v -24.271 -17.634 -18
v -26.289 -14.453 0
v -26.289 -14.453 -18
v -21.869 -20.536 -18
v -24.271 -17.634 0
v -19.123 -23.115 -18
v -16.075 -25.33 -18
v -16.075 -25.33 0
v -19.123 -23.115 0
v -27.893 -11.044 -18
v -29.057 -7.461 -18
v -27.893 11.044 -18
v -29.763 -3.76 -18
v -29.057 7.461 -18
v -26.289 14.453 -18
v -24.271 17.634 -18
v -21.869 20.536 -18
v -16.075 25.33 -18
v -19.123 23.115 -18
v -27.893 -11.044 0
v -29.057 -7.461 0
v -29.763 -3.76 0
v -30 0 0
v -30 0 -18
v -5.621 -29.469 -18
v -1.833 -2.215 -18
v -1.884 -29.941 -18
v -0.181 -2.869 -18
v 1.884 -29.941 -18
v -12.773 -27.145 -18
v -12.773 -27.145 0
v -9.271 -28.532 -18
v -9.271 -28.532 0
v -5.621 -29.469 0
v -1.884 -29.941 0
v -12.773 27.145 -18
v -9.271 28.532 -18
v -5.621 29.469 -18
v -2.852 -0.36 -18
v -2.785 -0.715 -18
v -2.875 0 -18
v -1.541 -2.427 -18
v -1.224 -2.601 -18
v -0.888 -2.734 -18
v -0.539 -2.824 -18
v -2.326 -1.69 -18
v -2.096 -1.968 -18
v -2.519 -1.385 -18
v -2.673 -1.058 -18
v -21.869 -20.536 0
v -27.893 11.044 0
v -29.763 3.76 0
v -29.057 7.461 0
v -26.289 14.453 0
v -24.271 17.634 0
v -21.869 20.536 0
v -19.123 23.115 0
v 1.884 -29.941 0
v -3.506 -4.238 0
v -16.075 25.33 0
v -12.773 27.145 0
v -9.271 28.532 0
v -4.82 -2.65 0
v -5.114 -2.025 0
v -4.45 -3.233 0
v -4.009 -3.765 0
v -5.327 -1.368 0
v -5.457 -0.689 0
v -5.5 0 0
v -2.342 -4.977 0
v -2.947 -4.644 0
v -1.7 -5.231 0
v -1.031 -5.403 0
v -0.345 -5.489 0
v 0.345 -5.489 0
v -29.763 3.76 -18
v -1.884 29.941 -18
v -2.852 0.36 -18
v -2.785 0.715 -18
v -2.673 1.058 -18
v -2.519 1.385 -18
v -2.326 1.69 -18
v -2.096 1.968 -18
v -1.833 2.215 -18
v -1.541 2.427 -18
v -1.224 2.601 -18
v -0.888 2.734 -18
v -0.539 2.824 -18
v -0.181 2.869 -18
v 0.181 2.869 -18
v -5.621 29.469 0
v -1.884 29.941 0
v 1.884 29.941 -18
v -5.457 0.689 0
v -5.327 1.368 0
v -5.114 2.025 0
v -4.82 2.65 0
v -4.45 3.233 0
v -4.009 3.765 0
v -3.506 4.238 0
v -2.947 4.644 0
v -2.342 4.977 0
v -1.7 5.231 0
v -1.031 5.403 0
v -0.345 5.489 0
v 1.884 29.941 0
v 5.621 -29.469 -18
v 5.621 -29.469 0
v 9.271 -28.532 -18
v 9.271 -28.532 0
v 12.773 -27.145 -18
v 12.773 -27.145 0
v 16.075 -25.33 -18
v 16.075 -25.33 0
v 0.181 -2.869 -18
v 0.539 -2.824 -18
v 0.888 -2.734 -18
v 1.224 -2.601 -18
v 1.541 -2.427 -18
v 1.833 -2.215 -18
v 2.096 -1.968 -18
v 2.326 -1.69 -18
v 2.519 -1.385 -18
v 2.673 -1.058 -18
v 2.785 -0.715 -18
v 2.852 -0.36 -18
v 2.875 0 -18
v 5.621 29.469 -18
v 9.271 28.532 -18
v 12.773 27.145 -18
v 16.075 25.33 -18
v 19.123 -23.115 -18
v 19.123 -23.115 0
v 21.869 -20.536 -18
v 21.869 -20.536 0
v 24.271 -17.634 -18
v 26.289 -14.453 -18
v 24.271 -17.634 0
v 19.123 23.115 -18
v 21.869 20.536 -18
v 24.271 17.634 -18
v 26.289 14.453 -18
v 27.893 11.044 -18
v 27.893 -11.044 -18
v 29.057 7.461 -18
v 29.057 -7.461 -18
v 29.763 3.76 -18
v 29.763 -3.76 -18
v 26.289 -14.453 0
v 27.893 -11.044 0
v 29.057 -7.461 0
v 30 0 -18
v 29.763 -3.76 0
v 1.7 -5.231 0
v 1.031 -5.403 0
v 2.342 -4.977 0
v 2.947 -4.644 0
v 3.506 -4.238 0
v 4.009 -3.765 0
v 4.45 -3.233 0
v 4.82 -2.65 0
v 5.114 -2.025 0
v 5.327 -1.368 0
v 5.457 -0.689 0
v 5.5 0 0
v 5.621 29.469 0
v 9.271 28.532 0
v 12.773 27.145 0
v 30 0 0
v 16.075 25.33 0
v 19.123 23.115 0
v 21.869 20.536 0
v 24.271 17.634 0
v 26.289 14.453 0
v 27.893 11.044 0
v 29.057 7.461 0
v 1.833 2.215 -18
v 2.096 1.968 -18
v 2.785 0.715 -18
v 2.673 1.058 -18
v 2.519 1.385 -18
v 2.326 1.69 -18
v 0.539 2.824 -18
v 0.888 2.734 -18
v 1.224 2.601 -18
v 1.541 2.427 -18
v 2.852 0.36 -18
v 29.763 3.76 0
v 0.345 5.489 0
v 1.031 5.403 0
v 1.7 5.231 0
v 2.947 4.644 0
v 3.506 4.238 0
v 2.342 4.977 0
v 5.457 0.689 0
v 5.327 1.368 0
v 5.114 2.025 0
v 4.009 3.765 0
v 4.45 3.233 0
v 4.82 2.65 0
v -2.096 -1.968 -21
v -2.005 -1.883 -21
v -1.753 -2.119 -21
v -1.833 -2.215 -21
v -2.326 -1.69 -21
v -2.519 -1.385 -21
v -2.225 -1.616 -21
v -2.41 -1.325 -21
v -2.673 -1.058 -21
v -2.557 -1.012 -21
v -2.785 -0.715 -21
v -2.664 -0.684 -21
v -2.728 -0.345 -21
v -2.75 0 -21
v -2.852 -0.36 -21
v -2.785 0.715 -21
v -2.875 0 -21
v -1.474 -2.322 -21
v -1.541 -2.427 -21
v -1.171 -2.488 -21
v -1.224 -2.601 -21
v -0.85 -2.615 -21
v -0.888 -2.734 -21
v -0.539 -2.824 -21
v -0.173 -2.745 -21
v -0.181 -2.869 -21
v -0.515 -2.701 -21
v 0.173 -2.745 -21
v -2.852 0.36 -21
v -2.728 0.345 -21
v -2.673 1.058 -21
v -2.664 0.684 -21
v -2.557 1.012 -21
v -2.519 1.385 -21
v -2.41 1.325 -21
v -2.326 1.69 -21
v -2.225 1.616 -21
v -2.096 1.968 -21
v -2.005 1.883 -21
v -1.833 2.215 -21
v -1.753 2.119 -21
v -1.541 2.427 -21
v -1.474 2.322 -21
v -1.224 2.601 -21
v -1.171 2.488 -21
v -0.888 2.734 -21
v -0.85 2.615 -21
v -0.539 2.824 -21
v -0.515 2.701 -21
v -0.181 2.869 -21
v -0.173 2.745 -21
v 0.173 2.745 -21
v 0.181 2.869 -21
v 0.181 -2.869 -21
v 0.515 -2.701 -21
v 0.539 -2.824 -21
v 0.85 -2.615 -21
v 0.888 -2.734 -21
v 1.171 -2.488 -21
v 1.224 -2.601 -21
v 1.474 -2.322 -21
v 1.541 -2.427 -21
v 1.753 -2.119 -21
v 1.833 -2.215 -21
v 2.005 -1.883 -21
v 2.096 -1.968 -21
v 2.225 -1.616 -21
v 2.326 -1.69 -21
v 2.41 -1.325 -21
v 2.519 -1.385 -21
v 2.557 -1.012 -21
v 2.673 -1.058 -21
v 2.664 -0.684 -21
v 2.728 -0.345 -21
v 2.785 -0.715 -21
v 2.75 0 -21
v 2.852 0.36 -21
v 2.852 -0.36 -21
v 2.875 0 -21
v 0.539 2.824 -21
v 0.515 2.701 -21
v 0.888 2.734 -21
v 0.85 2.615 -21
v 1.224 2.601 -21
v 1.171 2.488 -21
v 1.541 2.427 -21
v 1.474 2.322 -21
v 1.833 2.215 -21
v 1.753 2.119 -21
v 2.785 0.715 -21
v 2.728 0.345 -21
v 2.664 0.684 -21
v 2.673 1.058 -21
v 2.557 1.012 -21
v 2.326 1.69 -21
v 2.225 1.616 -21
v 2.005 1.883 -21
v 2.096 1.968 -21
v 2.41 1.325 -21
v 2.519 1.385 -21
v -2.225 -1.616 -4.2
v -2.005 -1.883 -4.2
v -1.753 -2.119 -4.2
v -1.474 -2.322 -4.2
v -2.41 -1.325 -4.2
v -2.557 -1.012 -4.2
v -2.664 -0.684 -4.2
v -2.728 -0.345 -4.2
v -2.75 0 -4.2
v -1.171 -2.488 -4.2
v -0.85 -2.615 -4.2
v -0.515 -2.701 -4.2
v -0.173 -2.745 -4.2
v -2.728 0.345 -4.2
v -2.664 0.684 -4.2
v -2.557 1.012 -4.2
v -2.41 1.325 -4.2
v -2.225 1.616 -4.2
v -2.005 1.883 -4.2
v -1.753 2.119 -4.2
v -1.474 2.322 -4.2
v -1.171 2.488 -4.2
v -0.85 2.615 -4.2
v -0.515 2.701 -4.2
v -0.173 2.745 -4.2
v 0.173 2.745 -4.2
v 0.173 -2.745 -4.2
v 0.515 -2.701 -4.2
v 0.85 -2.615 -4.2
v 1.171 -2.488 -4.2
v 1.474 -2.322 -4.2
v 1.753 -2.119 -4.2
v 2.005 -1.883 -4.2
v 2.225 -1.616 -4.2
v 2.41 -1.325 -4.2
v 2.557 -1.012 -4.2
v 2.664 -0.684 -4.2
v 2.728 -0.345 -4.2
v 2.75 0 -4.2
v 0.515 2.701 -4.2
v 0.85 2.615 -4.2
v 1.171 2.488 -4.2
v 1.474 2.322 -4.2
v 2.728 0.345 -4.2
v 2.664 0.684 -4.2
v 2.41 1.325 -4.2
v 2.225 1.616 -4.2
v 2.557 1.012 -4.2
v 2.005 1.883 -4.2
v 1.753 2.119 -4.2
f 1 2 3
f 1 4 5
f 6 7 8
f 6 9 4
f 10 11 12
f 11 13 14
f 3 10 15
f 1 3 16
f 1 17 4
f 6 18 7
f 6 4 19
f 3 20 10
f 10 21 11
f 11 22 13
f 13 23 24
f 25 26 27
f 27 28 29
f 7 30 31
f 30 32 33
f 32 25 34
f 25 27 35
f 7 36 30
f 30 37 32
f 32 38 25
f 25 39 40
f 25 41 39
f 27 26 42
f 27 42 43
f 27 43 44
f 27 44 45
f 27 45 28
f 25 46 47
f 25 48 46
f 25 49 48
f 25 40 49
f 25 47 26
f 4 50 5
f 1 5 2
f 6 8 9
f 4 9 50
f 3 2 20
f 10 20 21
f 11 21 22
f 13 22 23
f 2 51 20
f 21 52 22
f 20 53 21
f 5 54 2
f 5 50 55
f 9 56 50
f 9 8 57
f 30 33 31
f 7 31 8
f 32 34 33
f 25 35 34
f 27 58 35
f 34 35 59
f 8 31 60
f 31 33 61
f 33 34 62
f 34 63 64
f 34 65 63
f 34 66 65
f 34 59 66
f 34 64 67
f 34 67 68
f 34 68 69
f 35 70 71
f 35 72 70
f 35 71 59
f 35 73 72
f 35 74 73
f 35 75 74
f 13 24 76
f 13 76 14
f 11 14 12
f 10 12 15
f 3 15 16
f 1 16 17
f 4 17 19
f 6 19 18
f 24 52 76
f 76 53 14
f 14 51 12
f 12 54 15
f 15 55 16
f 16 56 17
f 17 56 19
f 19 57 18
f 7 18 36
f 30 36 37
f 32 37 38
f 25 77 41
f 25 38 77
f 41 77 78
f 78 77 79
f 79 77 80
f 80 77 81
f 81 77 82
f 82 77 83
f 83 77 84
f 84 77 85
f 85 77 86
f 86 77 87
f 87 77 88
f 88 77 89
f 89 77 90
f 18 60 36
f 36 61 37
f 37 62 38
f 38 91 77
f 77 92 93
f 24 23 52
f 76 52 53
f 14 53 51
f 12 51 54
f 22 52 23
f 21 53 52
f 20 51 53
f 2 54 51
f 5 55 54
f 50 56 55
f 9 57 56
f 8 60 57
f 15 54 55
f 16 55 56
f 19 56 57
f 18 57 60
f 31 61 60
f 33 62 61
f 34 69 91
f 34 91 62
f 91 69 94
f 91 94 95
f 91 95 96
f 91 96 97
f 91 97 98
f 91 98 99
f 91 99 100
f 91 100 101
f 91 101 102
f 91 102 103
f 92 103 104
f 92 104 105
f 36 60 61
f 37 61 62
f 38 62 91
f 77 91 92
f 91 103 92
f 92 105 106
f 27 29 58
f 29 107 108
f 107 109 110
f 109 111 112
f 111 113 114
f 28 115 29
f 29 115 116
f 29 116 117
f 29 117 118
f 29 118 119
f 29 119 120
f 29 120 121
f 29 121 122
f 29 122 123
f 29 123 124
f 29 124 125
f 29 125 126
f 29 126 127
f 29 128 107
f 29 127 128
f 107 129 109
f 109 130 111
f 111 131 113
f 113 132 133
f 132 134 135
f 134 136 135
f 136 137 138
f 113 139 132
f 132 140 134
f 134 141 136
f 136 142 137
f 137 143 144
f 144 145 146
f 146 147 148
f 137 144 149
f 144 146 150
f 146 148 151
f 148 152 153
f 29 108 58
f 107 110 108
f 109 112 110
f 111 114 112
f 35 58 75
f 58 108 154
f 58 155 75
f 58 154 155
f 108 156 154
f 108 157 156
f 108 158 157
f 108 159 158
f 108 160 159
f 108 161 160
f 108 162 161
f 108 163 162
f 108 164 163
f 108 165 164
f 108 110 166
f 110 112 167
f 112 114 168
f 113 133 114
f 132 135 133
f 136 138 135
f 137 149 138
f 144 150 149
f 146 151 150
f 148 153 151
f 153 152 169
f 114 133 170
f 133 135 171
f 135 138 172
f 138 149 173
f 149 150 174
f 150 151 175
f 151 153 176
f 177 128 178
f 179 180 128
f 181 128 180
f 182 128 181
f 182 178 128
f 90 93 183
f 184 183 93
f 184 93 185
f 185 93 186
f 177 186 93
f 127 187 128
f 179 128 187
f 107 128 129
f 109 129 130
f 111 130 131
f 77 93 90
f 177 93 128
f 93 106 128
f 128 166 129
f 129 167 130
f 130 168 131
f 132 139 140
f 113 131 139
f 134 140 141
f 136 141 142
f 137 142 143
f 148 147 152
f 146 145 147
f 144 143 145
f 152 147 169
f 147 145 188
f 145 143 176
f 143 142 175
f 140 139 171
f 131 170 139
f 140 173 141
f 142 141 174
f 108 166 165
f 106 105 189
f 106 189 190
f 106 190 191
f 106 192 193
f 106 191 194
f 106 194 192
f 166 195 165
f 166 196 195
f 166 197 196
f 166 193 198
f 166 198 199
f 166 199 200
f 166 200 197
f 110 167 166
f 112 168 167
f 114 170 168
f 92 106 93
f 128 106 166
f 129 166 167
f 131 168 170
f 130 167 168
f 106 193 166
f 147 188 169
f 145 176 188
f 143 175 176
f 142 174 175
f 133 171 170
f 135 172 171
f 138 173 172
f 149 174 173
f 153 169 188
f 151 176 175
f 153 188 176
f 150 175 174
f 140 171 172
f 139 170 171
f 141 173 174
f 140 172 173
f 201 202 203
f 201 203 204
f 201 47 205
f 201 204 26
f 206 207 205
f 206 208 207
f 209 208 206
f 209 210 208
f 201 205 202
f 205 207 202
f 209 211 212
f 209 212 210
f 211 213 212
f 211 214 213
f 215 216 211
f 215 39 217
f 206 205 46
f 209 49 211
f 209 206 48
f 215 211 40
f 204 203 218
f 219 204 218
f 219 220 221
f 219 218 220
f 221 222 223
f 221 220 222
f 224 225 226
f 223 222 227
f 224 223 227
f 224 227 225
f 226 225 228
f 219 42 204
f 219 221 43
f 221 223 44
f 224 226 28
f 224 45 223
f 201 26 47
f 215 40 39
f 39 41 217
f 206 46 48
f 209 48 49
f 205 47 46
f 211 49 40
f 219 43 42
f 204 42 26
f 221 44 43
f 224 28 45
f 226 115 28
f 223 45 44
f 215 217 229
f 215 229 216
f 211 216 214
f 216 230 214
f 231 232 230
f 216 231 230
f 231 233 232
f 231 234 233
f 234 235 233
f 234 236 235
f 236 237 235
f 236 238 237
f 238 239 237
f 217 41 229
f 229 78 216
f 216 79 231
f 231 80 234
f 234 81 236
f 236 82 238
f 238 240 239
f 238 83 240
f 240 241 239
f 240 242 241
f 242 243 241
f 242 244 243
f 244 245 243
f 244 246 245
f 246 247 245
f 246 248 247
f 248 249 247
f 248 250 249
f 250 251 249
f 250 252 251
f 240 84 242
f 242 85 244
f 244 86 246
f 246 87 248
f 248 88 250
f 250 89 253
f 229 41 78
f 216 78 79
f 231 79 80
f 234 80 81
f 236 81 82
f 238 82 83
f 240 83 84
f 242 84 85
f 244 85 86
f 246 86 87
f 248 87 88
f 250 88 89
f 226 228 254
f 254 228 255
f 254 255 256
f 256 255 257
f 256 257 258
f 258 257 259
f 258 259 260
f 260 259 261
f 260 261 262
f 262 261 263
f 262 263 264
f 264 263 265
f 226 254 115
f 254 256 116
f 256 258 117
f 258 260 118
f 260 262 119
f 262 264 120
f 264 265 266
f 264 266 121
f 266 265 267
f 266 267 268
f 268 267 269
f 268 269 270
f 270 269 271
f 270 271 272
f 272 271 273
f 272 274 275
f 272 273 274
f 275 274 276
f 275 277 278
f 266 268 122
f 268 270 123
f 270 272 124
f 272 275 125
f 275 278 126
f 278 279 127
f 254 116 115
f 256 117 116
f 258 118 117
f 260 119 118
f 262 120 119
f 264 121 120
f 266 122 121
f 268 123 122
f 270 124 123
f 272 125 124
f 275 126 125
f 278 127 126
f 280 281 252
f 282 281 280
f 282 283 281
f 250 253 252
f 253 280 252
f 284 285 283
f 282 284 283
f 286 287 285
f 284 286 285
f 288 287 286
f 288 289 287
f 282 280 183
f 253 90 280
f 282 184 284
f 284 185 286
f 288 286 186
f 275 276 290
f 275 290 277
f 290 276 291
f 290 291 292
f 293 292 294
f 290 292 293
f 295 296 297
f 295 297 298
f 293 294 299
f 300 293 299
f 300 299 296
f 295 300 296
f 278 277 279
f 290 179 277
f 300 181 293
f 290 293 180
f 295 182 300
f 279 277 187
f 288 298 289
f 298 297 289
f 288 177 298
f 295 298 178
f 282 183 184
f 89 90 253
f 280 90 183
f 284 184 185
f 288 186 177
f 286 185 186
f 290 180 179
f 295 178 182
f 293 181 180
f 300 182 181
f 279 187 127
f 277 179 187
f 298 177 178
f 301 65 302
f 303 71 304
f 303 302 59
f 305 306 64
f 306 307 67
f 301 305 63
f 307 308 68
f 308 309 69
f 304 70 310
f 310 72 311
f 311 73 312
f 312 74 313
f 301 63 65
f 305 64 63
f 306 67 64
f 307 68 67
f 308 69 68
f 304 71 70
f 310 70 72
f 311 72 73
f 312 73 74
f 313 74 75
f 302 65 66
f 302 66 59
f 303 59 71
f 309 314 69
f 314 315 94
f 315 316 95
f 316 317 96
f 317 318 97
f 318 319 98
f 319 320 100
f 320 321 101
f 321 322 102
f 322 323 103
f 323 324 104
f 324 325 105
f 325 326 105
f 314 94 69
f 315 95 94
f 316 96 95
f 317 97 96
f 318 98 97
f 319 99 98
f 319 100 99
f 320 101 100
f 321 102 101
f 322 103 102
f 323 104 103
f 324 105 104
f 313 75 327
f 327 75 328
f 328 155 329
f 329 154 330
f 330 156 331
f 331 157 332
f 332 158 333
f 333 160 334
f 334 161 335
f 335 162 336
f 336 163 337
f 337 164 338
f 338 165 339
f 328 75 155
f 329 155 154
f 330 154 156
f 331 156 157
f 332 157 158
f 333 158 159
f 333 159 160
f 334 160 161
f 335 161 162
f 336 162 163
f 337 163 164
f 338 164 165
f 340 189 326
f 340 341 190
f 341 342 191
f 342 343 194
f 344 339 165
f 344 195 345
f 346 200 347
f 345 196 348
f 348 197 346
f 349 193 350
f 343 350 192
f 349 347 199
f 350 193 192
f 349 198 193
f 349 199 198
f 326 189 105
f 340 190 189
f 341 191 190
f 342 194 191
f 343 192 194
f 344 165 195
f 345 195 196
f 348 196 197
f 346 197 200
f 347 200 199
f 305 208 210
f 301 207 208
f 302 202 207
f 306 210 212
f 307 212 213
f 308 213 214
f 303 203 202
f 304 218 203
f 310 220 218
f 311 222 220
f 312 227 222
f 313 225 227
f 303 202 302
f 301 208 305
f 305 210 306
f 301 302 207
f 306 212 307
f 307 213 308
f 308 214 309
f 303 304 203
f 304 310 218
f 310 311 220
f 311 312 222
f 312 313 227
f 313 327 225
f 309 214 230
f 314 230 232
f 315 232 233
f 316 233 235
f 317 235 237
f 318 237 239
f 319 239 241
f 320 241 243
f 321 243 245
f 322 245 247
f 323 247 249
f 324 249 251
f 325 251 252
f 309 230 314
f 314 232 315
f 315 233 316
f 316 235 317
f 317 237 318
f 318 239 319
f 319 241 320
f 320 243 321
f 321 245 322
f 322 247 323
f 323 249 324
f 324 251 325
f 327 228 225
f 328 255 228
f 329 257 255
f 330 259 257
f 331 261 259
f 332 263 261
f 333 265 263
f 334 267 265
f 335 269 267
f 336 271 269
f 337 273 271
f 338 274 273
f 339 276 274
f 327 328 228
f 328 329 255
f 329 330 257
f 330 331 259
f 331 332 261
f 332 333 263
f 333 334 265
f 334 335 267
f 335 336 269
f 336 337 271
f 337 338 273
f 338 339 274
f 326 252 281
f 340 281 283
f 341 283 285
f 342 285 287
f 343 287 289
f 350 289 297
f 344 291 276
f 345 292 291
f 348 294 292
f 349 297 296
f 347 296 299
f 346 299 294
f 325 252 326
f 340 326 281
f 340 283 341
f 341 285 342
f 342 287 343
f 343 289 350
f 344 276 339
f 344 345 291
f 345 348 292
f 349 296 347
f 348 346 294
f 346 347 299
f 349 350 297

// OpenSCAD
$fn = 50;

difference() {
	union() {
		translate(v = [0, 0, -18.0]) {
			cylinder(h = 18, r = 30.0);
		}
		#translate(v = [0, 0, -21.0]) {
			cylinder(h = 21, r = 2.875);
		}
	}
	union() {
		translate(v = [0, 0, 0]) {
			rotate(a = [0, 0, 0]) {
				difference() {
					union() {
						translate(v = [0, 0, -21.0]) {
							cylinder(h = 21, r = 2.25);
						}
						translate(v = [0, 0, -4.2]) {
							cylinder(h = 4.2, r1 = 2.75, r2 = 5.5);
						}
						translate(v = [0, 0, -21.0]) {
							cylinder(h = 21, r = 2.75);
						}
						translate(v = [0, 0, -21.0]) {
							cylinder(h = 21, r = 2.25);
						}
					}
					union();
				}
			}
		}
	}
}
